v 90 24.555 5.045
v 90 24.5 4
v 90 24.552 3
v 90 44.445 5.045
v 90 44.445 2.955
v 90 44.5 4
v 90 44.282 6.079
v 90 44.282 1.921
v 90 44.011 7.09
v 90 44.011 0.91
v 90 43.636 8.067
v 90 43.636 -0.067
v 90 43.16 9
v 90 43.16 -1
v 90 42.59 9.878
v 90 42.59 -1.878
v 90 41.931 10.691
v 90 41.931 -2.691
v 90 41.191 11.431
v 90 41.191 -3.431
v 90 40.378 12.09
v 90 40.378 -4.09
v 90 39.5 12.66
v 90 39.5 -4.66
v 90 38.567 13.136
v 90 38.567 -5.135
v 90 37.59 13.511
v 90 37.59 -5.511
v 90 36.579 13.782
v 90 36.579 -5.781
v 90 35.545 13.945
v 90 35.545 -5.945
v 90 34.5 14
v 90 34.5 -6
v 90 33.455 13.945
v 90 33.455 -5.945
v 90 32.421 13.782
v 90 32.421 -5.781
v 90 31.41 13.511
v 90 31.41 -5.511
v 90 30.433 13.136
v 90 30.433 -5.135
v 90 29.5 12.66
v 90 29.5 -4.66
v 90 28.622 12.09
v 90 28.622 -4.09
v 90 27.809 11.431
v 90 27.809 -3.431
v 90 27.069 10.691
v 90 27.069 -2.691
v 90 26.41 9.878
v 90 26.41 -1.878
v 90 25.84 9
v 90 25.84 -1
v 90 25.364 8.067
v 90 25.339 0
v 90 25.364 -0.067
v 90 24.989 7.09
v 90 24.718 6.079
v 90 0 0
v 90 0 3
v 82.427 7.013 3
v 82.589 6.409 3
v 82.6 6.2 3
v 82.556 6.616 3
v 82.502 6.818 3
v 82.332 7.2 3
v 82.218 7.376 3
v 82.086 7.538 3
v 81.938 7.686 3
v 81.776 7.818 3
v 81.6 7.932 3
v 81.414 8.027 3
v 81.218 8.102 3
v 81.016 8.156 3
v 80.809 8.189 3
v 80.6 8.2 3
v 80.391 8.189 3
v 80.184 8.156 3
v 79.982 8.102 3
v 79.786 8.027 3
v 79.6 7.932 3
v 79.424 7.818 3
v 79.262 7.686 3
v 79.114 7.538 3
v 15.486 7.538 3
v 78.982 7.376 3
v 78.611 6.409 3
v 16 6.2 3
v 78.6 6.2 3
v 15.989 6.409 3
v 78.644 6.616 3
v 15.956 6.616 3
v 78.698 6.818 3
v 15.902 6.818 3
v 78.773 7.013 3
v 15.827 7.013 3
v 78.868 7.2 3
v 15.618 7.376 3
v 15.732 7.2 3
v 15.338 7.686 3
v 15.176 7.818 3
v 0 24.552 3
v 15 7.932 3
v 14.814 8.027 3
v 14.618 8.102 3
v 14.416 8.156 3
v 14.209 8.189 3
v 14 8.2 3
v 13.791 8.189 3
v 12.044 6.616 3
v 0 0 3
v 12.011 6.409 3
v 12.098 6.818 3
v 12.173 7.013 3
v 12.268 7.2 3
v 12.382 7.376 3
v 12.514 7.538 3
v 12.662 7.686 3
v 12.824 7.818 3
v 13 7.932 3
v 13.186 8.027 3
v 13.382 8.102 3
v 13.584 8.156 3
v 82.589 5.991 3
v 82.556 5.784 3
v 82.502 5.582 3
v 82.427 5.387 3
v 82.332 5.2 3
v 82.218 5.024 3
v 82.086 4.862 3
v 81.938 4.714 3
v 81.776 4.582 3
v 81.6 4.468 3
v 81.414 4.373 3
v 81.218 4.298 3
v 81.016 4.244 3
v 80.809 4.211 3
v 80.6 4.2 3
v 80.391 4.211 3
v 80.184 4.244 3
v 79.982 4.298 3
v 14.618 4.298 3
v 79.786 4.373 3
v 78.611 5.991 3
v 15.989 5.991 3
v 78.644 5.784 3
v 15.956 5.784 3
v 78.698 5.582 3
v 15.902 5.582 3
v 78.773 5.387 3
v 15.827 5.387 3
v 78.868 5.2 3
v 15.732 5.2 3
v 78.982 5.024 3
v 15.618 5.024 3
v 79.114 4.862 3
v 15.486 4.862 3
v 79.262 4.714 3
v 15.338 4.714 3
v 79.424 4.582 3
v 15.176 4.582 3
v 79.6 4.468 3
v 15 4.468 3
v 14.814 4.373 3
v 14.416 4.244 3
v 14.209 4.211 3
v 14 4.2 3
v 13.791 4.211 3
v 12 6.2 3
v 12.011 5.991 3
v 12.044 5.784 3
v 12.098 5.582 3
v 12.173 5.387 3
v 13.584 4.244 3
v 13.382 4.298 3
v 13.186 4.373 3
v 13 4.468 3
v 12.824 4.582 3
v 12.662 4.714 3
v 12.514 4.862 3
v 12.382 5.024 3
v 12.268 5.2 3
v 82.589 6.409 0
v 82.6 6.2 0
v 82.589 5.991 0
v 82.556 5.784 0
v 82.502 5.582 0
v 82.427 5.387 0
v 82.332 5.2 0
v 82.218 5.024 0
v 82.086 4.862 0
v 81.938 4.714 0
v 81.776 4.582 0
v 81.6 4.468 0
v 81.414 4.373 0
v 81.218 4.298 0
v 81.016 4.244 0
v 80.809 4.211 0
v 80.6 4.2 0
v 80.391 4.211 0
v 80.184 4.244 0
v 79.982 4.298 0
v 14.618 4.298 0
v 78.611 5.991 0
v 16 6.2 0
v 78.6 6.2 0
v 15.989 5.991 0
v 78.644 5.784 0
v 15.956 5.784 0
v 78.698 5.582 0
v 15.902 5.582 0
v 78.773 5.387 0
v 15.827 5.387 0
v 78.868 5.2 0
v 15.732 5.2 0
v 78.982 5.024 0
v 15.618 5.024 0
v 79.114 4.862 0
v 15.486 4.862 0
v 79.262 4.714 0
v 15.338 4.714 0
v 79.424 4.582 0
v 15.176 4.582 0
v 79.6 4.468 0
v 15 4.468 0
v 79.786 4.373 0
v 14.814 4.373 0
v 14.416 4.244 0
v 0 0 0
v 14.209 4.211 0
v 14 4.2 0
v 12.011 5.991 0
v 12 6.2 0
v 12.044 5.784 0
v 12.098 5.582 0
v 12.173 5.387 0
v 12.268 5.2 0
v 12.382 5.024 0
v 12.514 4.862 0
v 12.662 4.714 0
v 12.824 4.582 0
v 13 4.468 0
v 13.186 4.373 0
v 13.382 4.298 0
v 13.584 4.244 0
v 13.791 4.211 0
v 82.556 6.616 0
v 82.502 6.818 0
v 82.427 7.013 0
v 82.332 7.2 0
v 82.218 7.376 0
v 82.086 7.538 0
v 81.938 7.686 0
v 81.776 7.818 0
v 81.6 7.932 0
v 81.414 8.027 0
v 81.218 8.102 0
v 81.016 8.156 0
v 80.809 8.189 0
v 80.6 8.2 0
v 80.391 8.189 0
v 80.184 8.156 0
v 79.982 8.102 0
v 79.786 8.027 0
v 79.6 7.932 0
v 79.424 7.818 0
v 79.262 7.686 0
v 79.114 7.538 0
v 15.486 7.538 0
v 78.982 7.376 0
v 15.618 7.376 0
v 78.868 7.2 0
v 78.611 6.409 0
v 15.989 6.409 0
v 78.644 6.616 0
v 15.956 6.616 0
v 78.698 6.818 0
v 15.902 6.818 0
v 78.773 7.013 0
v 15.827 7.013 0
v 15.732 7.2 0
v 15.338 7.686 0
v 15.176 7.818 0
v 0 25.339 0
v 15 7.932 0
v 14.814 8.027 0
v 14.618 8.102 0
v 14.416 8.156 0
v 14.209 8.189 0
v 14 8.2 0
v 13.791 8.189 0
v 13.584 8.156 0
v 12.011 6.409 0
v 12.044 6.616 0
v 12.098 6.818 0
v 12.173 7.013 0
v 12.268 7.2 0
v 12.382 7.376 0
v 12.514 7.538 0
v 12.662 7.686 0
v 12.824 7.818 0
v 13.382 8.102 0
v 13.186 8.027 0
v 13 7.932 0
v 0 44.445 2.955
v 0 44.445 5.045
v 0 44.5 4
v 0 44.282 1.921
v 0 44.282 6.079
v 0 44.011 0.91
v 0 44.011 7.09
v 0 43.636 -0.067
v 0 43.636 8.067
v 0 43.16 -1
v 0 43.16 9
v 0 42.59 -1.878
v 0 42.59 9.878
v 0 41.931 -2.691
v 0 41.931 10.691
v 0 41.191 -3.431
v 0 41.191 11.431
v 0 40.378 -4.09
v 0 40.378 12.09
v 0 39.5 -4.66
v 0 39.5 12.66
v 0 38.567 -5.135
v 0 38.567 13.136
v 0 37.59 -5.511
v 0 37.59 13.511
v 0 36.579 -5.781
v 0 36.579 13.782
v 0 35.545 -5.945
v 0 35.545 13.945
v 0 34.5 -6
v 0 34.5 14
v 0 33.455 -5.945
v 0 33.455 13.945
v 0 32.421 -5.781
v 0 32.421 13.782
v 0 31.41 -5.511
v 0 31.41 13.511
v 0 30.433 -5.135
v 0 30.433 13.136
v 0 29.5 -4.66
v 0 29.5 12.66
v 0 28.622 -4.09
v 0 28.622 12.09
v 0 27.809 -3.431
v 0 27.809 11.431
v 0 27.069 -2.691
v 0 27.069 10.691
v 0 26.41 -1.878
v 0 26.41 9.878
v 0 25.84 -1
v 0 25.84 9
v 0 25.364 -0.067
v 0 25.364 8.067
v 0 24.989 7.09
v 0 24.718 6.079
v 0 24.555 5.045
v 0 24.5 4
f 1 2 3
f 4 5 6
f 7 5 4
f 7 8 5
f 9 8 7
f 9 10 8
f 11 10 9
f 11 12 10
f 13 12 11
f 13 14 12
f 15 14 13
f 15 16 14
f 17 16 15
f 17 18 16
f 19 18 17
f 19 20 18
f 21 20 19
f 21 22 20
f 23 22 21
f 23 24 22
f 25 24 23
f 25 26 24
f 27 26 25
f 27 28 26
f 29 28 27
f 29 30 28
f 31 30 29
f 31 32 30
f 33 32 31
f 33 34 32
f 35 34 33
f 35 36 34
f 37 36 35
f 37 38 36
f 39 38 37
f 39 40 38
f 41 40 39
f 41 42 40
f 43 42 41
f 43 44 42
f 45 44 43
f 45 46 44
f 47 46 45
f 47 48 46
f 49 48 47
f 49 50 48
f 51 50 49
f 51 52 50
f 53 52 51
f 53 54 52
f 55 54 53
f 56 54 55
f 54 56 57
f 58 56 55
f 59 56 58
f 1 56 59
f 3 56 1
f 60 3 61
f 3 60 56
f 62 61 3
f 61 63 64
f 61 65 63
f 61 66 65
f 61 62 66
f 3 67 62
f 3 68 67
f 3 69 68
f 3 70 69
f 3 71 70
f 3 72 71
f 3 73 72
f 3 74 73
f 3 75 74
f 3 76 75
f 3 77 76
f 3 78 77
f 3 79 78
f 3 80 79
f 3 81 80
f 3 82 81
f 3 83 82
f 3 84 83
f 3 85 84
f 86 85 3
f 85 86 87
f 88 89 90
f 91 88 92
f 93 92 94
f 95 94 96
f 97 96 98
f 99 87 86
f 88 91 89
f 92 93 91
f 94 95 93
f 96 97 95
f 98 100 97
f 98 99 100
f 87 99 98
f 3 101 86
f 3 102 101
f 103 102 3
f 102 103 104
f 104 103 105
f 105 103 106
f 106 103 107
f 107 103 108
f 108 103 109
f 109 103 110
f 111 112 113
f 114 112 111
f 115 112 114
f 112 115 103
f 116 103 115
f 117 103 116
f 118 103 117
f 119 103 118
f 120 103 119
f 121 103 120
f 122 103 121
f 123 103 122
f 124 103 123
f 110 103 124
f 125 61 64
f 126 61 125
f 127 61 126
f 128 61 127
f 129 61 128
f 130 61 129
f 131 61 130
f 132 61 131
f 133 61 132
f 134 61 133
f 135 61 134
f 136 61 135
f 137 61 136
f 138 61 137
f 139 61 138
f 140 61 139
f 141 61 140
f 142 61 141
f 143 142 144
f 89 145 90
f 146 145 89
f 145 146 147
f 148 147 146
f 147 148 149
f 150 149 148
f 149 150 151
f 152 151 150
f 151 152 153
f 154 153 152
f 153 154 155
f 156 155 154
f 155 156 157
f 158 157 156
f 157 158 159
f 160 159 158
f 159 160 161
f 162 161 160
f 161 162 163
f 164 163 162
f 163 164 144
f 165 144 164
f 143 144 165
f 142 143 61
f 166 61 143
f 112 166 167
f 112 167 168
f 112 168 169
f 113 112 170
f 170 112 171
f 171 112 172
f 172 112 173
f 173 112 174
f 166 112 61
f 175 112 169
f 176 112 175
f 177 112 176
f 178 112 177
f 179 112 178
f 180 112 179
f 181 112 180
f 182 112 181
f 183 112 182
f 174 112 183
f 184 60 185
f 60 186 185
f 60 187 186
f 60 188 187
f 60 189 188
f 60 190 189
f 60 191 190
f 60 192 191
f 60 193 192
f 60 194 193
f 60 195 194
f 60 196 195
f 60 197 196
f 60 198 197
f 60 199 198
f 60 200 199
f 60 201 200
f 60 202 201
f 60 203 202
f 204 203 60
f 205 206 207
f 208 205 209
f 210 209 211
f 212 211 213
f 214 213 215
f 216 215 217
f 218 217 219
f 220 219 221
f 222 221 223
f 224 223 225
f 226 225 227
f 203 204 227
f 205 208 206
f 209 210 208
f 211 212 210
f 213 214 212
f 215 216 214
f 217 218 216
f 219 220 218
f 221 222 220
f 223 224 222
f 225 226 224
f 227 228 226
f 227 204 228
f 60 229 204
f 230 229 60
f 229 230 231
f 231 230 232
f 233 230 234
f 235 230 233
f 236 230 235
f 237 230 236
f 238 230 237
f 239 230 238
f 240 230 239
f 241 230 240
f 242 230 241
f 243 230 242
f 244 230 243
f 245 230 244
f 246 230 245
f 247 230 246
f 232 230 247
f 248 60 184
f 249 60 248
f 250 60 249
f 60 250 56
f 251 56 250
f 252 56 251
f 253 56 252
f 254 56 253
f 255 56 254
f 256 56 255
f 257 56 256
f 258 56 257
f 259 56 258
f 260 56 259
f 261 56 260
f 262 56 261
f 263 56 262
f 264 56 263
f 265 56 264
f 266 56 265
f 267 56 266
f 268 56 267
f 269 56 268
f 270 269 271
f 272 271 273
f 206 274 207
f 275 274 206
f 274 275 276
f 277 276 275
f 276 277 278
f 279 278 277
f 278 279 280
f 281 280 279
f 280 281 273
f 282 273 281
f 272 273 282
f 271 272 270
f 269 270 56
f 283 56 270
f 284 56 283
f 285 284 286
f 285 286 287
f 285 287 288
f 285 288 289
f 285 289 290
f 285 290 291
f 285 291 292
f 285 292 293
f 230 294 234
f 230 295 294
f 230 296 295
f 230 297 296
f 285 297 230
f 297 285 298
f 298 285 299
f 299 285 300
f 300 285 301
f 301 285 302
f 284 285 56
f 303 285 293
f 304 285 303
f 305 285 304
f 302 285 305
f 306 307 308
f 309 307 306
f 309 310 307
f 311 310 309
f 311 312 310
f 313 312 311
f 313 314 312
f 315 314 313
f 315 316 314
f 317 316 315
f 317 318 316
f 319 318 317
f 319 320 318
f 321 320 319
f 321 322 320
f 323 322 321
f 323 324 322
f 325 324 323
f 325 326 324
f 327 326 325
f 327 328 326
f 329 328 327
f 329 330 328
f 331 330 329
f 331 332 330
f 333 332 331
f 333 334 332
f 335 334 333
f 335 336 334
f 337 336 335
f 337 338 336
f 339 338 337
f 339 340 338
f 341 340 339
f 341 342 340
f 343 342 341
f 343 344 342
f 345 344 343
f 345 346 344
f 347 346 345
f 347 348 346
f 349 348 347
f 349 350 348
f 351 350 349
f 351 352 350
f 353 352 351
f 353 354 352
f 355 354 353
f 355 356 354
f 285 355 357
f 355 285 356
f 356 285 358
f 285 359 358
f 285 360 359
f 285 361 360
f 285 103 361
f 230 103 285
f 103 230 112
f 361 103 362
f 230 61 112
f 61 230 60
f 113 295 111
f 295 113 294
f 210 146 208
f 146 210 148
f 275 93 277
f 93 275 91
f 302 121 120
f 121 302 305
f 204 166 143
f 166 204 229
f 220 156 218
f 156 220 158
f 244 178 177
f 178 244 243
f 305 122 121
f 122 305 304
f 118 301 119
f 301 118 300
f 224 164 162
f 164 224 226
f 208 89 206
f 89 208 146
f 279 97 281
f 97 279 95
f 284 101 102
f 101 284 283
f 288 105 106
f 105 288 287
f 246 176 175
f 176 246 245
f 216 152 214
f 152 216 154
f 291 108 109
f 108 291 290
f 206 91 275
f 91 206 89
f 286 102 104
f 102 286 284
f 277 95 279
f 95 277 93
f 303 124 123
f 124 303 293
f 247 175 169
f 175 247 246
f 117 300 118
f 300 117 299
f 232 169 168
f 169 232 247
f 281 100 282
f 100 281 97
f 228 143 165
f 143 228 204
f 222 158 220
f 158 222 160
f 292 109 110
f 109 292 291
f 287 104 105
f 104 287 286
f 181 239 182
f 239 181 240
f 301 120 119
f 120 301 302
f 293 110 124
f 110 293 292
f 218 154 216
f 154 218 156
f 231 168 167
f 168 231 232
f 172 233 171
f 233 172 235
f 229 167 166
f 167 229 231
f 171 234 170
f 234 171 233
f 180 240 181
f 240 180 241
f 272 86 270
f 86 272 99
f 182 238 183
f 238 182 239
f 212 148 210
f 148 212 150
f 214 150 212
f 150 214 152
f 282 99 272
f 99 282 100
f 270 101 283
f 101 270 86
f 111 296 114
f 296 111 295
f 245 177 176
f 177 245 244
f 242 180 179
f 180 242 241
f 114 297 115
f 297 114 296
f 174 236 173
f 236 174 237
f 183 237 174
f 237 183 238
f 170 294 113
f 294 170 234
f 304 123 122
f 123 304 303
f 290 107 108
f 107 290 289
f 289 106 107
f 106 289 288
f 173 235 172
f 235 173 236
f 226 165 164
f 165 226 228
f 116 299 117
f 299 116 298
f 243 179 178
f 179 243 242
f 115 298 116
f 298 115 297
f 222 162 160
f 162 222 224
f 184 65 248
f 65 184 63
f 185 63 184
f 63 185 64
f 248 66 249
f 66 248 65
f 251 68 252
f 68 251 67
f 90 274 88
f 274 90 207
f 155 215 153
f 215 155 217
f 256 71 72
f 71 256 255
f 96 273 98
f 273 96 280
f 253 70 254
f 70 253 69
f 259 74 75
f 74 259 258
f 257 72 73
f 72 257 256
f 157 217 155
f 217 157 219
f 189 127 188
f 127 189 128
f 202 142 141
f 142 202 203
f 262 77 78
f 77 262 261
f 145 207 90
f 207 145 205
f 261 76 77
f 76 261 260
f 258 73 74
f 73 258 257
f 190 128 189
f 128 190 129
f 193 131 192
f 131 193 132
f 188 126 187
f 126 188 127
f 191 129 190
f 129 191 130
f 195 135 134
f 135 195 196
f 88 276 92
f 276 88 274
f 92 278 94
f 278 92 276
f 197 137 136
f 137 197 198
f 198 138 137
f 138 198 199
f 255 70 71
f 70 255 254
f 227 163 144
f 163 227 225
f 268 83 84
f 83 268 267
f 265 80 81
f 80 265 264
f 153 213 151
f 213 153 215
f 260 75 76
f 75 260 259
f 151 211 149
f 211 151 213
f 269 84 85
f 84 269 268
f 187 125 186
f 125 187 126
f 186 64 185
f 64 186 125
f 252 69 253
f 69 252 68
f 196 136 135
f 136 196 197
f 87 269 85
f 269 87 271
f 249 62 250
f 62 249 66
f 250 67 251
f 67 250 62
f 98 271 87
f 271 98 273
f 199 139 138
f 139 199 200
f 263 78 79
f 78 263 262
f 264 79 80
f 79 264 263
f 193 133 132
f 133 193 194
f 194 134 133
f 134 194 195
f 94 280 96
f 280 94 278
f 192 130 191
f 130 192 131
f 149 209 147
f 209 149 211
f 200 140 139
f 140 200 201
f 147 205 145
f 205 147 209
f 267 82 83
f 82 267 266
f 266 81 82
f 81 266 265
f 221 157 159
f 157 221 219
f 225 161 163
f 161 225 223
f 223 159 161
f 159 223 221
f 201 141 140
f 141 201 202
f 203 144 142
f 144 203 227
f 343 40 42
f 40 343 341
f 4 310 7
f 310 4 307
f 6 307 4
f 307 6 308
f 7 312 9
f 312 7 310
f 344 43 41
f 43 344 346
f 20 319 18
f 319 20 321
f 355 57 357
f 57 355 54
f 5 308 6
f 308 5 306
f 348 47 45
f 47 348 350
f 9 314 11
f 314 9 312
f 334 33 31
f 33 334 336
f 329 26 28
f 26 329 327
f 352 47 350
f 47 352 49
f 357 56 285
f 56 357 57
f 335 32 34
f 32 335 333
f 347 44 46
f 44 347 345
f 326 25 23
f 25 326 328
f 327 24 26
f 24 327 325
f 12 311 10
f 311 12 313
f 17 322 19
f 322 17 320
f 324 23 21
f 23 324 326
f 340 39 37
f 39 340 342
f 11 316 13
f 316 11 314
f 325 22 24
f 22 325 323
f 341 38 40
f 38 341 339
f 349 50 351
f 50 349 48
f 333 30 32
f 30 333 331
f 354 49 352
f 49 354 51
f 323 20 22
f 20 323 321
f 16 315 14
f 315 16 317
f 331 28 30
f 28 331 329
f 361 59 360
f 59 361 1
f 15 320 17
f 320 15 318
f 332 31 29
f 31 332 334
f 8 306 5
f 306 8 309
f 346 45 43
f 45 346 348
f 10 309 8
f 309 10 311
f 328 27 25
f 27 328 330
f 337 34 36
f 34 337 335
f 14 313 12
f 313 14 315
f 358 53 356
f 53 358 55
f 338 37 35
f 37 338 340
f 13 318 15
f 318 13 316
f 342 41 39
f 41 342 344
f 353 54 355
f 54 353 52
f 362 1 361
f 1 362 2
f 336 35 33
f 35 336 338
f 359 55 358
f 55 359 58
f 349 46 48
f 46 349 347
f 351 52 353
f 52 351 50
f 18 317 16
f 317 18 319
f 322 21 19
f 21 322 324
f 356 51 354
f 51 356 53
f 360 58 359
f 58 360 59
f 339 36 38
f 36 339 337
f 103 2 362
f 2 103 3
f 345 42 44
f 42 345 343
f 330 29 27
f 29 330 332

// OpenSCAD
$fn = 60;

width = 90;
depth = 40.5;
height = 3;
diam = 4;

difference(){
    cube([width, depth, height]);

    translate([14,6.2,0]){
        cylinder(r=diam/2, h=height);
    }
    
    translate([14+66.6,6.2,0]){
        cylinder(r=diam/2, h=height);
    }  
}

rotate([90,0,90]) translate([depth-6,4,0]) cylinder(r=10,h=width);
